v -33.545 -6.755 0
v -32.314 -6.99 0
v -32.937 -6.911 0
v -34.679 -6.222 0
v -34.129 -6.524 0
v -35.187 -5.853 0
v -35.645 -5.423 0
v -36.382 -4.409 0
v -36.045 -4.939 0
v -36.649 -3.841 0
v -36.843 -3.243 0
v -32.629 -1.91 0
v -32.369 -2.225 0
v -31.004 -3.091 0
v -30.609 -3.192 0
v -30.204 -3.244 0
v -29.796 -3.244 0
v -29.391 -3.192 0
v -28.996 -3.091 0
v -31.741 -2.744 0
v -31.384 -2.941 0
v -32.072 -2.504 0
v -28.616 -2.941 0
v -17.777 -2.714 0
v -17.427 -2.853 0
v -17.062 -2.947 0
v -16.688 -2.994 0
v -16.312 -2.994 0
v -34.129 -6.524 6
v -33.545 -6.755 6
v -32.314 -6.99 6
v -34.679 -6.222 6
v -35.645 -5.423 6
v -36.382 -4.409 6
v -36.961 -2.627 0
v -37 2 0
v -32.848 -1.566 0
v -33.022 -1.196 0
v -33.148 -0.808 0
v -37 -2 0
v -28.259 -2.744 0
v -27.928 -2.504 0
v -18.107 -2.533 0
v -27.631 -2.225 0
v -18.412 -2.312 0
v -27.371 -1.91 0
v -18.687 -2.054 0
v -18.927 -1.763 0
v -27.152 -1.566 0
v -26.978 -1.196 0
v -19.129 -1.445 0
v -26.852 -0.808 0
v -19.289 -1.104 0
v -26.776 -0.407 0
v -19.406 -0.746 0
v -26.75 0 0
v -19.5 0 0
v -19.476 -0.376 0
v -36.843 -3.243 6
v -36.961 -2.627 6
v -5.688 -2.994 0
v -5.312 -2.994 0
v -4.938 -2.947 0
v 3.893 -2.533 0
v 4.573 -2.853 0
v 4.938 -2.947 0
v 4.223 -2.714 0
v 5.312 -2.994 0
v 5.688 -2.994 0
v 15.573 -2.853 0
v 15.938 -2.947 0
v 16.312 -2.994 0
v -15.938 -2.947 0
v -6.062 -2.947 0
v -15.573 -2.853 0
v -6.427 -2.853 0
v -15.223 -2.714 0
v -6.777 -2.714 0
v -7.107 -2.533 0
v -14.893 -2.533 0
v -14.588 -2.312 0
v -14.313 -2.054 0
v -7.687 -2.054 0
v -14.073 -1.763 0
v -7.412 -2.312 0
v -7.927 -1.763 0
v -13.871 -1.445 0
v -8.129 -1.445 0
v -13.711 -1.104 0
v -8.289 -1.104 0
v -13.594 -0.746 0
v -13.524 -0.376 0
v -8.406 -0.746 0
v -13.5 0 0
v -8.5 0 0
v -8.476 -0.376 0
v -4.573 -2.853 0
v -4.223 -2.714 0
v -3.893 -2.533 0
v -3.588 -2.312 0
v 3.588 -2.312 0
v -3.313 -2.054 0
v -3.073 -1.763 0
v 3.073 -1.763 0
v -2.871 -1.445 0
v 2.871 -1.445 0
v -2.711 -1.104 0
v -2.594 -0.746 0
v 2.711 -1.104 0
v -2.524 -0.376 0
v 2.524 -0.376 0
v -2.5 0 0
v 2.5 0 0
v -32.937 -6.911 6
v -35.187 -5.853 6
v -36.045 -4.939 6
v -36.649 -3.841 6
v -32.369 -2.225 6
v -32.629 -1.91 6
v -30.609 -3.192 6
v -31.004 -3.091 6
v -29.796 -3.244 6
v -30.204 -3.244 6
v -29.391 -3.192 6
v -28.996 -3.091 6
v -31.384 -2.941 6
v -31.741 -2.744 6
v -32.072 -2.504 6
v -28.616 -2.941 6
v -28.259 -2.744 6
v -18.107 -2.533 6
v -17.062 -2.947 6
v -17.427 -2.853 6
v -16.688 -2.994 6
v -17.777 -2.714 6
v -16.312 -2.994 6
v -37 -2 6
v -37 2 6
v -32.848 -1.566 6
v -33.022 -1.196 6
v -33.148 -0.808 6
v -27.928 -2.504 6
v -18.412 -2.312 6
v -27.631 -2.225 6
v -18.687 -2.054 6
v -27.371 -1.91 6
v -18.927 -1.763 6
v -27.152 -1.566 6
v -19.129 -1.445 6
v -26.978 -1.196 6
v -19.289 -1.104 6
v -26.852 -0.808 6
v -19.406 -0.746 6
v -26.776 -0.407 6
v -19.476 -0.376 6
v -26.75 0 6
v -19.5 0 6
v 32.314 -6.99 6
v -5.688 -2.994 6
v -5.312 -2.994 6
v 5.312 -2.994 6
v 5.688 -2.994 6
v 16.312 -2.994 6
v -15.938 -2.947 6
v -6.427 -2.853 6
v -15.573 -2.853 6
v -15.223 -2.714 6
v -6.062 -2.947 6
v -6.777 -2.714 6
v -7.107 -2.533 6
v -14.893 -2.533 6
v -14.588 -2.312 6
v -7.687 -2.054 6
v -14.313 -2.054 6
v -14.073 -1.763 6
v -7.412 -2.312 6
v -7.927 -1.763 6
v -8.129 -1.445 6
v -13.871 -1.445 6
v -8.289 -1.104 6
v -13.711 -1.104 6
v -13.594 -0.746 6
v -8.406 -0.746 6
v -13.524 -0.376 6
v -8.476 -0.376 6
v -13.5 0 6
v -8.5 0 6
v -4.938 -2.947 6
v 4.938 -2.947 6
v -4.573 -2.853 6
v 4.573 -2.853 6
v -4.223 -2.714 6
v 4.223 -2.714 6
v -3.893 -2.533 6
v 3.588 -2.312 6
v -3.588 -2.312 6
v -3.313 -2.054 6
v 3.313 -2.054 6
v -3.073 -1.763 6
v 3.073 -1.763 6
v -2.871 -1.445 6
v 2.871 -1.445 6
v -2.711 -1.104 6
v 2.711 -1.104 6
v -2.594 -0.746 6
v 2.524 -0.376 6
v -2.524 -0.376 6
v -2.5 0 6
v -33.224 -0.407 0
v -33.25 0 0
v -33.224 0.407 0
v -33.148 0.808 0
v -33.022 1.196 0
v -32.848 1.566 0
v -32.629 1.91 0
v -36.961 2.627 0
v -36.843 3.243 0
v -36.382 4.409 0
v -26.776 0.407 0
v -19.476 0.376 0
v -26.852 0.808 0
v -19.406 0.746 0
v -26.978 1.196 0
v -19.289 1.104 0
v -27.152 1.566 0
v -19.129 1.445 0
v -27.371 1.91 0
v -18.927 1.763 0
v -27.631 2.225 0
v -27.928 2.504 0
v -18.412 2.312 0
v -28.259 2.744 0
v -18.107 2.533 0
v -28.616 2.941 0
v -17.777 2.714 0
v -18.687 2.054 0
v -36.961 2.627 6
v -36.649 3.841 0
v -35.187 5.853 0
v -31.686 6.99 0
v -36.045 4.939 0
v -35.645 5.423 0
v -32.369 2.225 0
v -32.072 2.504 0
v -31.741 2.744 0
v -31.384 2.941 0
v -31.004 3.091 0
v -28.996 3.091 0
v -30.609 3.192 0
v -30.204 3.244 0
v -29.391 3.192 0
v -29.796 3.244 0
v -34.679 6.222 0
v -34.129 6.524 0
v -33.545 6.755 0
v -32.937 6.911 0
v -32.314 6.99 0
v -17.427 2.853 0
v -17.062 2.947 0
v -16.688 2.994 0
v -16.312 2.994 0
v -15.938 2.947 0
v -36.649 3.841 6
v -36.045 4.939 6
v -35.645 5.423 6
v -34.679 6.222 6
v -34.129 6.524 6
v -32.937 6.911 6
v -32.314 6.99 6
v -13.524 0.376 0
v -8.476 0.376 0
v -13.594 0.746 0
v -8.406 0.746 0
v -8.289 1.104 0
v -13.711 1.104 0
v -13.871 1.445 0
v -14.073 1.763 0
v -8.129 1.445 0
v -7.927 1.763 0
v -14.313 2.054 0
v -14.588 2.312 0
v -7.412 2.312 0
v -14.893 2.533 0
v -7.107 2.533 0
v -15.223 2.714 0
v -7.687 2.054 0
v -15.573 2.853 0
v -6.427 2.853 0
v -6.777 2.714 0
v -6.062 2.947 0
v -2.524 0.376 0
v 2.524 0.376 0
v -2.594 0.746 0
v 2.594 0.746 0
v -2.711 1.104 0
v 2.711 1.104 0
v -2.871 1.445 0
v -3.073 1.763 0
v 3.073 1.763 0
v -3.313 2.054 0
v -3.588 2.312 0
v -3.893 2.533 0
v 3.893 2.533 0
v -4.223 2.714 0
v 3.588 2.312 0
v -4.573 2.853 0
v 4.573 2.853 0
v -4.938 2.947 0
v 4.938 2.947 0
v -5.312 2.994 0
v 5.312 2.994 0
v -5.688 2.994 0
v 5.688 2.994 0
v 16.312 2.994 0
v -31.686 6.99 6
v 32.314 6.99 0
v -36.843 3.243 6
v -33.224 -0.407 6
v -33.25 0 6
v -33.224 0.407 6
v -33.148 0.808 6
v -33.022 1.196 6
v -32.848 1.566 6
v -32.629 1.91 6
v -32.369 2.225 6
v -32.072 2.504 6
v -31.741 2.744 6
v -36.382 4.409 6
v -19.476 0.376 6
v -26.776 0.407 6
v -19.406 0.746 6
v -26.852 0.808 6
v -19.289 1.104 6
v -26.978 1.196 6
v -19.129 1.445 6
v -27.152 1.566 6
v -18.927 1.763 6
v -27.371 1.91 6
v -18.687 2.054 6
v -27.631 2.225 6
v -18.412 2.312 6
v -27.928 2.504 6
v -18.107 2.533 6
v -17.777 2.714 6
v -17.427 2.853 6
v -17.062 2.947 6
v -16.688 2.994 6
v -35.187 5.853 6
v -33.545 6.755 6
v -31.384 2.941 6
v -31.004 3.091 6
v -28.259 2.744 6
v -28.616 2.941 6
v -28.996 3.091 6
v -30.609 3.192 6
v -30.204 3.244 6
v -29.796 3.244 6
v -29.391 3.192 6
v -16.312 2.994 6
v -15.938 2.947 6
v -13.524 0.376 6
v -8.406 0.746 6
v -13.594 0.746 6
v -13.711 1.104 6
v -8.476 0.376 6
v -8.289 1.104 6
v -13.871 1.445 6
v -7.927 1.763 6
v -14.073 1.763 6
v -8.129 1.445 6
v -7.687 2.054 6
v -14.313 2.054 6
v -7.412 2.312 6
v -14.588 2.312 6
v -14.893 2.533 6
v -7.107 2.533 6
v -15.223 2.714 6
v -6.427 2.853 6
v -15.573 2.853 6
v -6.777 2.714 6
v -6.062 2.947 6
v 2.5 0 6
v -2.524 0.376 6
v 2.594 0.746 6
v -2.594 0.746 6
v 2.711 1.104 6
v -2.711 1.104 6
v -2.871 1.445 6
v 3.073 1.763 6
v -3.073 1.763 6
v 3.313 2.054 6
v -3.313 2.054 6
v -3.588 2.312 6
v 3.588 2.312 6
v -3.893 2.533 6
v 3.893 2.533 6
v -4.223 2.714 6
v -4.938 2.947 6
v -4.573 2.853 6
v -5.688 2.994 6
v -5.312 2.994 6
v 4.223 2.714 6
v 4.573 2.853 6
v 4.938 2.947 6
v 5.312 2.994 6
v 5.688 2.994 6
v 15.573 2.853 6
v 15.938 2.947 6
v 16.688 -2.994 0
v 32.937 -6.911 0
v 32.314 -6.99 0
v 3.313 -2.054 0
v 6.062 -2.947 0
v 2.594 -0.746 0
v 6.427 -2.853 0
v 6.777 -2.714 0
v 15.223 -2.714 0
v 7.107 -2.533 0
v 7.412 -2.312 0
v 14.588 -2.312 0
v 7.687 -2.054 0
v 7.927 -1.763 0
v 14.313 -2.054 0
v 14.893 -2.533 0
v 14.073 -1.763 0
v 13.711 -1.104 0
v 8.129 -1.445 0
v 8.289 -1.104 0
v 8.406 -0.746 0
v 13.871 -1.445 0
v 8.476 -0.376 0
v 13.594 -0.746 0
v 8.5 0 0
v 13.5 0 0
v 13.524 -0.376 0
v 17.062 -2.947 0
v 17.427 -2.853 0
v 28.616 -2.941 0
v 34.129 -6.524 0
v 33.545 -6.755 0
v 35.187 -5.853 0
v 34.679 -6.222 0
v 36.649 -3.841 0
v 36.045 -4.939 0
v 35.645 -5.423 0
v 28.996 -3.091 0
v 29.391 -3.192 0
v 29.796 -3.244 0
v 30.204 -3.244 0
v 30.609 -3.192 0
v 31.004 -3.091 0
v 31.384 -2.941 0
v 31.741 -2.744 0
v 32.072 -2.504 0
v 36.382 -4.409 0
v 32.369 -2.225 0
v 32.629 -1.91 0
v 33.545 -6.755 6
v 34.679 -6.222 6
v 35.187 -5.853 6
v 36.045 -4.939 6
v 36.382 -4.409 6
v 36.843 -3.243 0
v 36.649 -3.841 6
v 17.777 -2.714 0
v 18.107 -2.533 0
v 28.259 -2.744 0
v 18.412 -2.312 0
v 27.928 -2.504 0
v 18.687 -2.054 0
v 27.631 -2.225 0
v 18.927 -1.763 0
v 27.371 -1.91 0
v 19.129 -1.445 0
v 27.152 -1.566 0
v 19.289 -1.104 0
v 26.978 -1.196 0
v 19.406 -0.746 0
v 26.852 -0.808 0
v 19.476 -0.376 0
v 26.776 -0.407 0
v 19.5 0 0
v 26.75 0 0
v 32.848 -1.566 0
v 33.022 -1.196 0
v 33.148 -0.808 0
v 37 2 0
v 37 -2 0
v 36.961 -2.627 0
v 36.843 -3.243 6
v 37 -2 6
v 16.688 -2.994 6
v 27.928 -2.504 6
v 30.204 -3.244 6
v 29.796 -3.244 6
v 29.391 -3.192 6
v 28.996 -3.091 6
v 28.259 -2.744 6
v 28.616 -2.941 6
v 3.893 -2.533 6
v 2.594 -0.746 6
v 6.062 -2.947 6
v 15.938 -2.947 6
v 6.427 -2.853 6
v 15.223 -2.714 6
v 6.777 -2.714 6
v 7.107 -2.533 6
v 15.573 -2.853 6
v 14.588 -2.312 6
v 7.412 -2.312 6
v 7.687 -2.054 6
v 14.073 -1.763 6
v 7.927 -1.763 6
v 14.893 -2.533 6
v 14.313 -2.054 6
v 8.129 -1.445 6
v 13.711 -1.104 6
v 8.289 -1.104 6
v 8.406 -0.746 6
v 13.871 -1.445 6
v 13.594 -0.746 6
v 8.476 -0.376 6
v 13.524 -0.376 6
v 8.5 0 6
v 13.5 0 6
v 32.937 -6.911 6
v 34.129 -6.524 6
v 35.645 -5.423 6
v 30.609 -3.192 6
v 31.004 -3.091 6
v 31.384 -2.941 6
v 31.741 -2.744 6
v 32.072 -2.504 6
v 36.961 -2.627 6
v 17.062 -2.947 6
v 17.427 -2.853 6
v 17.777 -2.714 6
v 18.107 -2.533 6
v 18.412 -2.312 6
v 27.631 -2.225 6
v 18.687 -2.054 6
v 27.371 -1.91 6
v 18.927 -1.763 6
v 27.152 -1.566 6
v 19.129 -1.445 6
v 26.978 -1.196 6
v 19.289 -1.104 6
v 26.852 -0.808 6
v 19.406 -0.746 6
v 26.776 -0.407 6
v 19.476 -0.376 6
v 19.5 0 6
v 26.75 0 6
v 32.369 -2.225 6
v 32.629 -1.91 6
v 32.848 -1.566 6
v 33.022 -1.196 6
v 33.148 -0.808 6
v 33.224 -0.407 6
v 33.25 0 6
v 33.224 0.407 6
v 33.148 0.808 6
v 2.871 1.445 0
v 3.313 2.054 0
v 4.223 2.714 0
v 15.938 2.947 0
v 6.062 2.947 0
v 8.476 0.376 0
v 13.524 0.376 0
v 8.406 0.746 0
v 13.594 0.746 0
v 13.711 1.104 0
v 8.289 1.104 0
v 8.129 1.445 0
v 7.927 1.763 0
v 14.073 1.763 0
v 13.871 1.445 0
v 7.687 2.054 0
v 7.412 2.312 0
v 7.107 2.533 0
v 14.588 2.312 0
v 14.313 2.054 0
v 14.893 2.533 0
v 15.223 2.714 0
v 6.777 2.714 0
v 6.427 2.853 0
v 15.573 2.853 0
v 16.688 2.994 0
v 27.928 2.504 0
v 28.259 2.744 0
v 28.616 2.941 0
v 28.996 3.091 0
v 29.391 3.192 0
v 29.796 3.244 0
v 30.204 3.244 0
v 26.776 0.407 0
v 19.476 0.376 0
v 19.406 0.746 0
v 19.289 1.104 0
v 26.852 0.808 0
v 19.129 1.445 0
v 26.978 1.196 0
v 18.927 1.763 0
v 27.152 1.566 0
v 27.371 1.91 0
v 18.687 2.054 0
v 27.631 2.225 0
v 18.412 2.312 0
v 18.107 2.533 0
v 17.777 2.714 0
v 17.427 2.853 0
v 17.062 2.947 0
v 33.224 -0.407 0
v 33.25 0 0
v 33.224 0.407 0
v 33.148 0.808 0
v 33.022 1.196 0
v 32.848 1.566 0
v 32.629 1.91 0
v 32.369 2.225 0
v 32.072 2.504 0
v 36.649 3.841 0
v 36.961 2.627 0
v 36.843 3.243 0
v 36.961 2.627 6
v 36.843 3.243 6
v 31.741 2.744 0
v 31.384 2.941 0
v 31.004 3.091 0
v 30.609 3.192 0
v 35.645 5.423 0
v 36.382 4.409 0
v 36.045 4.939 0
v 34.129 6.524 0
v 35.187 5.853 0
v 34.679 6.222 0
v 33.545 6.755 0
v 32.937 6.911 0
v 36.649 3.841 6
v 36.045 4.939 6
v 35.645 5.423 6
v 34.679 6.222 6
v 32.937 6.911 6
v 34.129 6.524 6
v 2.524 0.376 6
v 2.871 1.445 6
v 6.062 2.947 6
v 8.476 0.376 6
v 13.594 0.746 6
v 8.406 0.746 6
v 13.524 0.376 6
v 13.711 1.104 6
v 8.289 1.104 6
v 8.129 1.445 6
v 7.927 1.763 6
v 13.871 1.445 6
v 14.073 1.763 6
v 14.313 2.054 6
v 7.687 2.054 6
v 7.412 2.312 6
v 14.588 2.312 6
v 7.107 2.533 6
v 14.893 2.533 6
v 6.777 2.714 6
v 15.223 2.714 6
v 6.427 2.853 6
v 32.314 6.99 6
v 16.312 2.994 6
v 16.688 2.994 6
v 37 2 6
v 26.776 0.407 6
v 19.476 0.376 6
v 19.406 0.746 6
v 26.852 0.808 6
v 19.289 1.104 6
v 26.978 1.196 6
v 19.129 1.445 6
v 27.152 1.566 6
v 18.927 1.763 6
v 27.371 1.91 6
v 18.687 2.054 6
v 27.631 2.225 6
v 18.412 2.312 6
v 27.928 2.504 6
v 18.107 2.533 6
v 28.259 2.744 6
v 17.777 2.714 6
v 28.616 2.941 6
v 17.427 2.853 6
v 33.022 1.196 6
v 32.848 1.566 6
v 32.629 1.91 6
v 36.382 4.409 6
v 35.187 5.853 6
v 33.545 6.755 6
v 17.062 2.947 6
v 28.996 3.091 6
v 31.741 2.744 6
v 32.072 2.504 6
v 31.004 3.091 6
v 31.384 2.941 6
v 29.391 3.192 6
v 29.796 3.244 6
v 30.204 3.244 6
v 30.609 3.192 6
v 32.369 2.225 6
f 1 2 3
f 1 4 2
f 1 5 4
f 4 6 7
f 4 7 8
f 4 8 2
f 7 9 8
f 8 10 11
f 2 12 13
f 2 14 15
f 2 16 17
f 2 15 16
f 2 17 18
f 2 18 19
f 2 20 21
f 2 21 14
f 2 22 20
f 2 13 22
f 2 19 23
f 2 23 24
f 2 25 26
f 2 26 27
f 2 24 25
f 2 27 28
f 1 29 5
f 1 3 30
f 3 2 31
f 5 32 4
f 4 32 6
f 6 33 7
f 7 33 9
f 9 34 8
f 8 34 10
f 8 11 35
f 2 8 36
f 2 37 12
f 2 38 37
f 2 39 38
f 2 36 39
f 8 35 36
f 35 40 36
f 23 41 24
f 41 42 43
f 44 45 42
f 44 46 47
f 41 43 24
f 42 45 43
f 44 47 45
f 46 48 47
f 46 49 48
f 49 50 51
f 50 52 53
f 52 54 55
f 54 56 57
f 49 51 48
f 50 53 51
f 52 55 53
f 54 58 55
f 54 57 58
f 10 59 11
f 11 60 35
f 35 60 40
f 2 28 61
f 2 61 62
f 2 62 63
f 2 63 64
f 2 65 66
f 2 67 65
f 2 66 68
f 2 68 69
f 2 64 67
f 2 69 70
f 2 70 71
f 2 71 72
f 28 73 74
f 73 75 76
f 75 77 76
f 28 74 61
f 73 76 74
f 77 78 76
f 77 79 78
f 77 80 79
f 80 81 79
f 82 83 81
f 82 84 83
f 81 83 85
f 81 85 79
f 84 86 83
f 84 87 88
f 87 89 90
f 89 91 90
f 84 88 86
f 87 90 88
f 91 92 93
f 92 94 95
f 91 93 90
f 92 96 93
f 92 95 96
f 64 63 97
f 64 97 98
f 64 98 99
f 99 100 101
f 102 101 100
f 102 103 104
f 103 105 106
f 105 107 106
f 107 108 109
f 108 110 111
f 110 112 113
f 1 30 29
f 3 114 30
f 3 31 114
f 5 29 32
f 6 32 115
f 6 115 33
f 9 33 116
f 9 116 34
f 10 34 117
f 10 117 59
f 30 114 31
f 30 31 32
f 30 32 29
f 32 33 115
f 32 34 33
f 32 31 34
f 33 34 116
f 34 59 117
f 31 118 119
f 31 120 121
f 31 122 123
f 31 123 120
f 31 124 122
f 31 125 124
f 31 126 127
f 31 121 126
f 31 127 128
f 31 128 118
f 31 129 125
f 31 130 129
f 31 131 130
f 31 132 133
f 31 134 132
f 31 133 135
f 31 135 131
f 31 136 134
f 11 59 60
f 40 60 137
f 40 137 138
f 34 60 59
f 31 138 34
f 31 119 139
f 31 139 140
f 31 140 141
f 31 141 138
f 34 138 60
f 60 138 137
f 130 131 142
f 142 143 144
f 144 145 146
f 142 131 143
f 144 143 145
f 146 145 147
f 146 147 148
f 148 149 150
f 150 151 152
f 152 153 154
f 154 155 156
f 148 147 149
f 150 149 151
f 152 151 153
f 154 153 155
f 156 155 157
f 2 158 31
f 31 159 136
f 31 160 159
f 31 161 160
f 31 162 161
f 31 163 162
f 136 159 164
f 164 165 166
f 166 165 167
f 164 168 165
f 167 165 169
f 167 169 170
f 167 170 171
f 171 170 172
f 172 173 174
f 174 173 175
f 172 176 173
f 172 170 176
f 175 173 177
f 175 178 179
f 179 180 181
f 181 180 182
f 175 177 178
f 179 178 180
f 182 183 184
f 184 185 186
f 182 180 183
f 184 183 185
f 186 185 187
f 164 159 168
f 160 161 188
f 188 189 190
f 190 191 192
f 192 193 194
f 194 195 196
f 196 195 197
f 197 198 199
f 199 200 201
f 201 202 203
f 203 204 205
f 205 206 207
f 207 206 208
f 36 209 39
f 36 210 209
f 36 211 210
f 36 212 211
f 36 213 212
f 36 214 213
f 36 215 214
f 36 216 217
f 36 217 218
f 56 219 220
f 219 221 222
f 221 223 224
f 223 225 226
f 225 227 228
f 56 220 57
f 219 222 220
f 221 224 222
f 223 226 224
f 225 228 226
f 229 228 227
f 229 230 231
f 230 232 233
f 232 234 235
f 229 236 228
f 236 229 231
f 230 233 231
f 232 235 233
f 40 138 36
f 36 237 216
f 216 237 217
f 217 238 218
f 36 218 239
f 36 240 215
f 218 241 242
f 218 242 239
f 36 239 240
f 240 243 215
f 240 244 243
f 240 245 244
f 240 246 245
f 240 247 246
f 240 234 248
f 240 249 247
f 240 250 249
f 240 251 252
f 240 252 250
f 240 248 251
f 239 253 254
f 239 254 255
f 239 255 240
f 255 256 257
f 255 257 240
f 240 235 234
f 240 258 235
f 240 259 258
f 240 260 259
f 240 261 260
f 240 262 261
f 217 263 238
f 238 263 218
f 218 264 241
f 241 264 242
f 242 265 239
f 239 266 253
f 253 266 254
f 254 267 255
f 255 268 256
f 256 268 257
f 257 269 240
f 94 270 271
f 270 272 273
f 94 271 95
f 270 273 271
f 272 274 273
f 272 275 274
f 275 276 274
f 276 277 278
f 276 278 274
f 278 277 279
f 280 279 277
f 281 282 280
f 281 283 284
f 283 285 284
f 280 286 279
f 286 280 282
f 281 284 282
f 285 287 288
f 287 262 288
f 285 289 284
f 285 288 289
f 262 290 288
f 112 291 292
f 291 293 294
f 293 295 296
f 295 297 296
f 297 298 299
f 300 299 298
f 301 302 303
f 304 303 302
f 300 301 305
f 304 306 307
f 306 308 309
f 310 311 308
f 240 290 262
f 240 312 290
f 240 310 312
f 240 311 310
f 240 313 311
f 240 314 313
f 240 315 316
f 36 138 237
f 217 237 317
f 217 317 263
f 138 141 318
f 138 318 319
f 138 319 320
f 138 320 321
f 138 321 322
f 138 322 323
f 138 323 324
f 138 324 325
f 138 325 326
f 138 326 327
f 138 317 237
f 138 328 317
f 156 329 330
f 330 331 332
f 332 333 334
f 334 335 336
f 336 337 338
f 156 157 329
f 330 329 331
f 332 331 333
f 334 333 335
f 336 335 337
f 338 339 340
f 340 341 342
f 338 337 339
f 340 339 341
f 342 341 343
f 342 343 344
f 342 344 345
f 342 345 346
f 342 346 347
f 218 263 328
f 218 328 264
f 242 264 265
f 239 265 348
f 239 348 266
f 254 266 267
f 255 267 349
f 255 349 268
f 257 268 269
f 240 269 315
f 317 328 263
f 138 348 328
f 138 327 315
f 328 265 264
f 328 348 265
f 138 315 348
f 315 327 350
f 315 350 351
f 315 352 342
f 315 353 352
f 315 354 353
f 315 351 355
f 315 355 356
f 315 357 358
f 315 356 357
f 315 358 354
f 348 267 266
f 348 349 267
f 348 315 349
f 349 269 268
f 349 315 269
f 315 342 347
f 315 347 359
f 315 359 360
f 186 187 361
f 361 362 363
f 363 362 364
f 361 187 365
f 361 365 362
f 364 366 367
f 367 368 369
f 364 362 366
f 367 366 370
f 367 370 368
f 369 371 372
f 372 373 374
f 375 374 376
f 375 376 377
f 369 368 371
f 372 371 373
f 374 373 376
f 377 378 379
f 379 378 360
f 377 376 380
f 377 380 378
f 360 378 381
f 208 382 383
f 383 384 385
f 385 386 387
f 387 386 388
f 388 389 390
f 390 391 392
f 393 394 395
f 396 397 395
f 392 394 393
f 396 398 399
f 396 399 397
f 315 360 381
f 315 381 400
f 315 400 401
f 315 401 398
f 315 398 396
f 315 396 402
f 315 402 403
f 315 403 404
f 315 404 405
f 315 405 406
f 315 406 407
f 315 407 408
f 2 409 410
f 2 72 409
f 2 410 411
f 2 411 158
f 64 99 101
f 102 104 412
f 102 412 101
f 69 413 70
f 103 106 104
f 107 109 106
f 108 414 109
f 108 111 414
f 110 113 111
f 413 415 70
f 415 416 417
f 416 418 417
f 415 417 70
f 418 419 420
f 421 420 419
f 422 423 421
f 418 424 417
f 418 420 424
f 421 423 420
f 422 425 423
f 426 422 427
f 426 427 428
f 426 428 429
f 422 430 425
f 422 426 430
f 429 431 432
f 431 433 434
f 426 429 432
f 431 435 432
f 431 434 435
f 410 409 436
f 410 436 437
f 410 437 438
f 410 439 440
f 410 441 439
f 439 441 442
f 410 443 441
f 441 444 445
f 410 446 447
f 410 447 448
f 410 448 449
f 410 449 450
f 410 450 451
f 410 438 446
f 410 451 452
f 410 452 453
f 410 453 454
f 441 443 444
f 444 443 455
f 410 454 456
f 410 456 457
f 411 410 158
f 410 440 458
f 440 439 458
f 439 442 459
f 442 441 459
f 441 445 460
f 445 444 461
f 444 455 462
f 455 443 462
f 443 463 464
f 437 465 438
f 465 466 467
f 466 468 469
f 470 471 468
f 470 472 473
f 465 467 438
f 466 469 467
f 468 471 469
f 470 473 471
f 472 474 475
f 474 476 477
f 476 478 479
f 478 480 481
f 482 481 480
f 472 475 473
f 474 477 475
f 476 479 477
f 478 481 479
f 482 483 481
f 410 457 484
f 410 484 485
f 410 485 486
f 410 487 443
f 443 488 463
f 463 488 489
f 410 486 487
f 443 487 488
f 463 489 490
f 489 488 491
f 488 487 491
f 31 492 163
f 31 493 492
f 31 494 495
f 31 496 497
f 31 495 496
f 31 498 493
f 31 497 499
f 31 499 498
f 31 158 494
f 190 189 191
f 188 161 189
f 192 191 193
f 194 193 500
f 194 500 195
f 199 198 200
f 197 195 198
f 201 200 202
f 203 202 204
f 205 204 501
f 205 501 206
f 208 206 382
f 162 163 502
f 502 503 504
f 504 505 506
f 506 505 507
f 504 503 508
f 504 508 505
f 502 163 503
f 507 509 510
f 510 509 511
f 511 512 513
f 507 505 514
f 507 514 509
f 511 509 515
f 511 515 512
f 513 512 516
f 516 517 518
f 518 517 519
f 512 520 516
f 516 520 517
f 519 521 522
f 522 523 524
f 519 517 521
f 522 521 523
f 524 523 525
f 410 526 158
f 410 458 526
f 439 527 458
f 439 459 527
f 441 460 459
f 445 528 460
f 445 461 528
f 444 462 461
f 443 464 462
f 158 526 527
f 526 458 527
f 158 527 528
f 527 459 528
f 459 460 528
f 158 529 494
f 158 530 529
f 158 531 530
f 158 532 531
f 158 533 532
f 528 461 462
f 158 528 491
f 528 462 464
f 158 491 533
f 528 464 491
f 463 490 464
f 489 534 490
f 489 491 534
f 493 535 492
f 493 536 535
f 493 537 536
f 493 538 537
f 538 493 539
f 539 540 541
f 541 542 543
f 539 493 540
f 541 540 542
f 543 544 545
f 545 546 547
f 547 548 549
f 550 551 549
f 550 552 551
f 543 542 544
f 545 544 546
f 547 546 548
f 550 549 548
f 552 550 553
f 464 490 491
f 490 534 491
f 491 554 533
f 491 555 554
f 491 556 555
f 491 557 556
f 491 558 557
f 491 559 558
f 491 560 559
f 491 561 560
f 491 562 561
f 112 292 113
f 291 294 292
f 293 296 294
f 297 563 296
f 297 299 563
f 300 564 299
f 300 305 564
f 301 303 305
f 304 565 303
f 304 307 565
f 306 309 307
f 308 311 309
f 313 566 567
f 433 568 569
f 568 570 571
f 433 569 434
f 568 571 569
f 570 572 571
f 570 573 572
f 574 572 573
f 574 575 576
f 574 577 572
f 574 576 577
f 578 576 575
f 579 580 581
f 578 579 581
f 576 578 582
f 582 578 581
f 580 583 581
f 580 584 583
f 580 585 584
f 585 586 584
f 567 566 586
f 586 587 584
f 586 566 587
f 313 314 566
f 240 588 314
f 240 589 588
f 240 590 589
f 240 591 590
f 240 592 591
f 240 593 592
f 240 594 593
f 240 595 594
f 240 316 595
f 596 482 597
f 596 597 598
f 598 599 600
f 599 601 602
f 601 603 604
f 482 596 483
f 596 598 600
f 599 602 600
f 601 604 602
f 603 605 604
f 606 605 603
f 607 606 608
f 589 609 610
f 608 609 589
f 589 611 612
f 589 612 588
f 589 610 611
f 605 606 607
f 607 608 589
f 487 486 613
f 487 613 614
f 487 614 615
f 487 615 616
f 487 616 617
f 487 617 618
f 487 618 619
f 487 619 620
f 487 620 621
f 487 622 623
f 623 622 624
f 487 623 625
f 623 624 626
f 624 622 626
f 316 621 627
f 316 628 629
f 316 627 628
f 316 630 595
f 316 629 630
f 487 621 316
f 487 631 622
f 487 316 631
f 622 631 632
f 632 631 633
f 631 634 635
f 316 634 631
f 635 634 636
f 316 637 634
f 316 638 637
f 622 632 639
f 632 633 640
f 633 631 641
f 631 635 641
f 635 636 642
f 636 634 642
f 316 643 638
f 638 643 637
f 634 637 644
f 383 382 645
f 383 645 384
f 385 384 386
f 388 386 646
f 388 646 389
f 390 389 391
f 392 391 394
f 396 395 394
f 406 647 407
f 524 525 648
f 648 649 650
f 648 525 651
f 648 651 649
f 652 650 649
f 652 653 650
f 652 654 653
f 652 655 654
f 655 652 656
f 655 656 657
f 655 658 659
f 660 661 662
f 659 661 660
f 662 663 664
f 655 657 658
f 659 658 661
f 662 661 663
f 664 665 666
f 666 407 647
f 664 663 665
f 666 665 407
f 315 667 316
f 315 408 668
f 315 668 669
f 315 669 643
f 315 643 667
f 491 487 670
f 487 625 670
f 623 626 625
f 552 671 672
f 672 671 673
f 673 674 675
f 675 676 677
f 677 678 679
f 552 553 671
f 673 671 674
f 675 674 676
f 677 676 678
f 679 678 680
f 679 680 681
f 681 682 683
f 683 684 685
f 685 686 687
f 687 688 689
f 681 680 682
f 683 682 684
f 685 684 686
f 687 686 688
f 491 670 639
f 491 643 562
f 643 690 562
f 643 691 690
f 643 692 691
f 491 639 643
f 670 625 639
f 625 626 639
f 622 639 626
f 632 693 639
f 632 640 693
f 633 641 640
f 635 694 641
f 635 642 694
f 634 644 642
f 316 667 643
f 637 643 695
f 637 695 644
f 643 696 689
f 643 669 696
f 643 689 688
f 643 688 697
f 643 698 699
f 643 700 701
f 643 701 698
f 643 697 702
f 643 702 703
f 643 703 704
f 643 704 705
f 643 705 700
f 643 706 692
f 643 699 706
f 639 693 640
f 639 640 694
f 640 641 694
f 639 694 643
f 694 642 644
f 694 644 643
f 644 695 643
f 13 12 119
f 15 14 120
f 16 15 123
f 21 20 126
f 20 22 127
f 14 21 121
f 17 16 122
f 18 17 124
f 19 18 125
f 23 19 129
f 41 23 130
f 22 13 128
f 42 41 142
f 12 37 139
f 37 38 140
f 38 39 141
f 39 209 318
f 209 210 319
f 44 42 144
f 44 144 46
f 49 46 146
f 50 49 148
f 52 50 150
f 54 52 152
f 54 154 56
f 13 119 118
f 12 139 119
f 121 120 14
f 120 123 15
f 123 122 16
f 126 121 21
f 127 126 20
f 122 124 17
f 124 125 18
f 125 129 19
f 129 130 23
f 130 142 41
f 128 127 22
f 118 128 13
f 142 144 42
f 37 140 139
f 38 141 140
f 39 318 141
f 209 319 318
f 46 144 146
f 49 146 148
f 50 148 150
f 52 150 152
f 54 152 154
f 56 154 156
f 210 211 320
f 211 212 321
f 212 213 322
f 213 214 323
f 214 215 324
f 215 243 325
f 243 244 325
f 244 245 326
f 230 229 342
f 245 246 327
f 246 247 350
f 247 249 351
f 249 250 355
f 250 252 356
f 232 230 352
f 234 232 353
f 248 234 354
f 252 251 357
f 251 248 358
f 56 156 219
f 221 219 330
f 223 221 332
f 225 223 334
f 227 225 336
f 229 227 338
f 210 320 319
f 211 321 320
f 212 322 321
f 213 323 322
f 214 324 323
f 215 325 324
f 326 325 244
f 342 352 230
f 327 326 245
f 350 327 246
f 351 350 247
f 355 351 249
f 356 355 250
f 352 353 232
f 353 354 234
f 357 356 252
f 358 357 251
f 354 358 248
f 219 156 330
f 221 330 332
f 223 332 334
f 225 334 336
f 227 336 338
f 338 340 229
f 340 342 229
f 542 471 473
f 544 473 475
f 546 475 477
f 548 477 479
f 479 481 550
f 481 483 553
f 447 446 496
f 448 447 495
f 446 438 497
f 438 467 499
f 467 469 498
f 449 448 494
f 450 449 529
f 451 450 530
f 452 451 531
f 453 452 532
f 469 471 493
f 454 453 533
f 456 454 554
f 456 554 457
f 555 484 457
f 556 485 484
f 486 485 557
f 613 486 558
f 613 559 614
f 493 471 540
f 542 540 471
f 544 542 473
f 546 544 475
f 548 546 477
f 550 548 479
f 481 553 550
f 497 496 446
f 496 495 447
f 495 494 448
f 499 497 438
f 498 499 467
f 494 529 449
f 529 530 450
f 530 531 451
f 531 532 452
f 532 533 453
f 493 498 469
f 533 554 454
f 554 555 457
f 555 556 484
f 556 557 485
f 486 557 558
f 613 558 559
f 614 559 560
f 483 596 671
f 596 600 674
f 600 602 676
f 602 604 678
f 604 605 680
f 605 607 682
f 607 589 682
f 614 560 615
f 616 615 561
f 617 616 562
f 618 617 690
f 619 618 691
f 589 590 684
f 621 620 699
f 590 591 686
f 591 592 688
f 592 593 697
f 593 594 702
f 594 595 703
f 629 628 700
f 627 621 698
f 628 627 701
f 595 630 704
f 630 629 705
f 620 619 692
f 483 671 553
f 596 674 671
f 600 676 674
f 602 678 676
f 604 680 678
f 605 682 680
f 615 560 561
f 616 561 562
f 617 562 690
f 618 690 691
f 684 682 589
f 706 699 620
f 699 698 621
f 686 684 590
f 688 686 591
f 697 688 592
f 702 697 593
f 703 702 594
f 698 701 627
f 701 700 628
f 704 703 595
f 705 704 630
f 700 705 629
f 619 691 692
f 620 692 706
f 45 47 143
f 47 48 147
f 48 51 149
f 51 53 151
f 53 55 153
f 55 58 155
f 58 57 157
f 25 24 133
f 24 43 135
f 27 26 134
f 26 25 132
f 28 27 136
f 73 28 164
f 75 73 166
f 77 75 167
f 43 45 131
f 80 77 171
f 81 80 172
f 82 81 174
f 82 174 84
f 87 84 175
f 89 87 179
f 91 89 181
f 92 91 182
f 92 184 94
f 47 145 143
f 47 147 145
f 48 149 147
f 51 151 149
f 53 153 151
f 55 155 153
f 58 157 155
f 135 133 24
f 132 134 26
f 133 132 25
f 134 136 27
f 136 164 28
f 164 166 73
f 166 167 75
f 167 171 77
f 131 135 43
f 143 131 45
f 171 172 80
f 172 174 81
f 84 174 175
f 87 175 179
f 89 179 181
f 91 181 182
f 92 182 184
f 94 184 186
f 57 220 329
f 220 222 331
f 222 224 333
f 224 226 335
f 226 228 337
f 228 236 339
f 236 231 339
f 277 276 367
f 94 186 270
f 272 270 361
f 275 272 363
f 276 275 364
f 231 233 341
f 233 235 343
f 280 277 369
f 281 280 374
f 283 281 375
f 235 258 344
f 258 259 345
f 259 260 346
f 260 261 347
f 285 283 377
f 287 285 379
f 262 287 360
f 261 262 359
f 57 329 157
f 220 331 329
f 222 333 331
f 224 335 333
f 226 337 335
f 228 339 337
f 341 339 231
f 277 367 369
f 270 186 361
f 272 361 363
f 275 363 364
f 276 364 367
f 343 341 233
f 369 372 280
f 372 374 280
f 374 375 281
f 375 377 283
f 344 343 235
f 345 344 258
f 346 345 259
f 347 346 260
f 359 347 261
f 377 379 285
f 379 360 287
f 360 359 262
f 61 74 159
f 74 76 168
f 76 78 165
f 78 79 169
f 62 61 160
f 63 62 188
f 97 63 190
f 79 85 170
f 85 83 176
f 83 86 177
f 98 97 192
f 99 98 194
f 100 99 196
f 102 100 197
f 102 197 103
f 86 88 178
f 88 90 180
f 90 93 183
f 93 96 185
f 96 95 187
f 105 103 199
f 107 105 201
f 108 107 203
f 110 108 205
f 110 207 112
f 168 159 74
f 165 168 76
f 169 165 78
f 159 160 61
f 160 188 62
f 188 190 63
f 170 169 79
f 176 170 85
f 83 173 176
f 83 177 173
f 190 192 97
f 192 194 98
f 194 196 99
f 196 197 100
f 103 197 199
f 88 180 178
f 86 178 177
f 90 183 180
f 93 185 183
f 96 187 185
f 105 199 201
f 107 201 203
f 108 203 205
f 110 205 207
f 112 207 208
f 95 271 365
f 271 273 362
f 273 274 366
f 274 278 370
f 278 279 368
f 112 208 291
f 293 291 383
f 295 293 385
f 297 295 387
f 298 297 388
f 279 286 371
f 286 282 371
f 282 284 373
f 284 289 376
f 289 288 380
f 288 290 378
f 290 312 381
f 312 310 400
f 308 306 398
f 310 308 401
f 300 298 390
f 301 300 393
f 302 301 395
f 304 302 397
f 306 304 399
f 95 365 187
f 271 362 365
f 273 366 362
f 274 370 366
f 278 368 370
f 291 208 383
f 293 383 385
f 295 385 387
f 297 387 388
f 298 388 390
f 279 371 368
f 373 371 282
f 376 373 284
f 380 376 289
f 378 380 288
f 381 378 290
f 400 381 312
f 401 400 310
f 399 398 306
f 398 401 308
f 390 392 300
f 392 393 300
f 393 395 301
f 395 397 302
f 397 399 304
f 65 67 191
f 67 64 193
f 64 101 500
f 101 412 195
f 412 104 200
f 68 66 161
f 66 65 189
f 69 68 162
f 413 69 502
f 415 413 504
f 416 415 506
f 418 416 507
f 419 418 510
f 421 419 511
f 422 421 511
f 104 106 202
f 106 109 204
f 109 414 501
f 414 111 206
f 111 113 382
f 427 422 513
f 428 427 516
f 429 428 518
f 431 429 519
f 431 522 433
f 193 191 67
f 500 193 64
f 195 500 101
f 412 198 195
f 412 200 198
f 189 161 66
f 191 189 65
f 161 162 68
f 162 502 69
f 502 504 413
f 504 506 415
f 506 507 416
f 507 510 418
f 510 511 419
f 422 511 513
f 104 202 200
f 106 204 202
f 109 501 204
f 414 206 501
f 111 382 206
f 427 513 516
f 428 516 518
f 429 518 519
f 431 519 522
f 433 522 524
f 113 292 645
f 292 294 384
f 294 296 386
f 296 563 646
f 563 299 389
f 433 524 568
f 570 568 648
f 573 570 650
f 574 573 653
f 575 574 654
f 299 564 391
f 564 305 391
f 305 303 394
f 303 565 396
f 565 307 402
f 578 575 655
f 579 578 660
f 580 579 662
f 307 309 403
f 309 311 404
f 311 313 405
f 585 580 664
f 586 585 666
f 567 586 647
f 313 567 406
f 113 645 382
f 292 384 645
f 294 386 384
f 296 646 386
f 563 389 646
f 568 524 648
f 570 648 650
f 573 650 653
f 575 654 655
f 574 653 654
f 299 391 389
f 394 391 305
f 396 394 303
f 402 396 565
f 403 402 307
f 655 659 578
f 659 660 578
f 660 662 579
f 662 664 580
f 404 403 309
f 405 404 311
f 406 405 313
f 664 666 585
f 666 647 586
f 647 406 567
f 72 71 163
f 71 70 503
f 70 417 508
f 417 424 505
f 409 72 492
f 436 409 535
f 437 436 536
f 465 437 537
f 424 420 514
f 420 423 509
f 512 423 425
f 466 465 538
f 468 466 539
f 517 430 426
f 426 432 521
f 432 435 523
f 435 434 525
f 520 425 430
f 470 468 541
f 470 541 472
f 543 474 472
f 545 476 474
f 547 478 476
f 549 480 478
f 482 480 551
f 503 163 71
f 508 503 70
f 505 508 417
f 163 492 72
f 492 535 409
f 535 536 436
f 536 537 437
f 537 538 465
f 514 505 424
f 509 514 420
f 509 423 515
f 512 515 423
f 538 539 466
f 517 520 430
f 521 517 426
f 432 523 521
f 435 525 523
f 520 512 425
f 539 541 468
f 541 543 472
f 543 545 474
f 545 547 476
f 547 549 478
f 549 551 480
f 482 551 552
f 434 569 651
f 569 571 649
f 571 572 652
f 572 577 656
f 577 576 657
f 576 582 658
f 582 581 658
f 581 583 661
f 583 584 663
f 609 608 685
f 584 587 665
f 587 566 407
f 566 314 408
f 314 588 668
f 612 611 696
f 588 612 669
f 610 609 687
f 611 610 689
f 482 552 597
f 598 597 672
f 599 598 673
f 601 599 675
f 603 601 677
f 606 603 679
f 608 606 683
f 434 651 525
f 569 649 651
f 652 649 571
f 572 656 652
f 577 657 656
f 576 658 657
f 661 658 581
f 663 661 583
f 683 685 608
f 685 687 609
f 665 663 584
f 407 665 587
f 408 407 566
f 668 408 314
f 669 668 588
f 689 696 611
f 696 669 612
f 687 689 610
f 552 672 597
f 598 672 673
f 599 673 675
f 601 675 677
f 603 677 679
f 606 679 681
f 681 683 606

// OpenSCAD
$fn = 50;

difference() {
	union() {
		hull() {
			translate(v = [-32.0, 2.0, 0]) {
				cylinder(h = 6, r = 5);
			}
			translate(v = [32.0, 2.0, 0]) {
				cylinder(h = 6, r = 5);
			}
			translate(v = [-32.0, -2.0, 0]) {
				cylinder(h = 6, r = 5);
			}
			translate(v = [32.0, -2.0, 0]) {
				cylinder(h = 6, r = 5);
			}
		}
	}
	union() {
		translate(v = [-30.0, 0.0, 0]) {
			cylinder(h = 6, r = 3.25);
		}
		translate(v = [30.0, 0.0, 0]) {
			cylinder(h = 6, r = 3.25);
		}
		translate(v = [-16.5, 0, 0.0]) {
			cylinder(h = 6, r = 3.0);
		}
		translate(v = [-5.5, 0, 0.0]) {
			cylinder(h = 6, r = 3.0);
		}
		translate(v = [5.5, 0, 0.0]) {
			cylinder(h = 6, r = 3.0);
		}
		translate(v = [16.5, 0, 0.0]) {
			cylinder(h = 6, r = 3.0);
		}
	}
}
